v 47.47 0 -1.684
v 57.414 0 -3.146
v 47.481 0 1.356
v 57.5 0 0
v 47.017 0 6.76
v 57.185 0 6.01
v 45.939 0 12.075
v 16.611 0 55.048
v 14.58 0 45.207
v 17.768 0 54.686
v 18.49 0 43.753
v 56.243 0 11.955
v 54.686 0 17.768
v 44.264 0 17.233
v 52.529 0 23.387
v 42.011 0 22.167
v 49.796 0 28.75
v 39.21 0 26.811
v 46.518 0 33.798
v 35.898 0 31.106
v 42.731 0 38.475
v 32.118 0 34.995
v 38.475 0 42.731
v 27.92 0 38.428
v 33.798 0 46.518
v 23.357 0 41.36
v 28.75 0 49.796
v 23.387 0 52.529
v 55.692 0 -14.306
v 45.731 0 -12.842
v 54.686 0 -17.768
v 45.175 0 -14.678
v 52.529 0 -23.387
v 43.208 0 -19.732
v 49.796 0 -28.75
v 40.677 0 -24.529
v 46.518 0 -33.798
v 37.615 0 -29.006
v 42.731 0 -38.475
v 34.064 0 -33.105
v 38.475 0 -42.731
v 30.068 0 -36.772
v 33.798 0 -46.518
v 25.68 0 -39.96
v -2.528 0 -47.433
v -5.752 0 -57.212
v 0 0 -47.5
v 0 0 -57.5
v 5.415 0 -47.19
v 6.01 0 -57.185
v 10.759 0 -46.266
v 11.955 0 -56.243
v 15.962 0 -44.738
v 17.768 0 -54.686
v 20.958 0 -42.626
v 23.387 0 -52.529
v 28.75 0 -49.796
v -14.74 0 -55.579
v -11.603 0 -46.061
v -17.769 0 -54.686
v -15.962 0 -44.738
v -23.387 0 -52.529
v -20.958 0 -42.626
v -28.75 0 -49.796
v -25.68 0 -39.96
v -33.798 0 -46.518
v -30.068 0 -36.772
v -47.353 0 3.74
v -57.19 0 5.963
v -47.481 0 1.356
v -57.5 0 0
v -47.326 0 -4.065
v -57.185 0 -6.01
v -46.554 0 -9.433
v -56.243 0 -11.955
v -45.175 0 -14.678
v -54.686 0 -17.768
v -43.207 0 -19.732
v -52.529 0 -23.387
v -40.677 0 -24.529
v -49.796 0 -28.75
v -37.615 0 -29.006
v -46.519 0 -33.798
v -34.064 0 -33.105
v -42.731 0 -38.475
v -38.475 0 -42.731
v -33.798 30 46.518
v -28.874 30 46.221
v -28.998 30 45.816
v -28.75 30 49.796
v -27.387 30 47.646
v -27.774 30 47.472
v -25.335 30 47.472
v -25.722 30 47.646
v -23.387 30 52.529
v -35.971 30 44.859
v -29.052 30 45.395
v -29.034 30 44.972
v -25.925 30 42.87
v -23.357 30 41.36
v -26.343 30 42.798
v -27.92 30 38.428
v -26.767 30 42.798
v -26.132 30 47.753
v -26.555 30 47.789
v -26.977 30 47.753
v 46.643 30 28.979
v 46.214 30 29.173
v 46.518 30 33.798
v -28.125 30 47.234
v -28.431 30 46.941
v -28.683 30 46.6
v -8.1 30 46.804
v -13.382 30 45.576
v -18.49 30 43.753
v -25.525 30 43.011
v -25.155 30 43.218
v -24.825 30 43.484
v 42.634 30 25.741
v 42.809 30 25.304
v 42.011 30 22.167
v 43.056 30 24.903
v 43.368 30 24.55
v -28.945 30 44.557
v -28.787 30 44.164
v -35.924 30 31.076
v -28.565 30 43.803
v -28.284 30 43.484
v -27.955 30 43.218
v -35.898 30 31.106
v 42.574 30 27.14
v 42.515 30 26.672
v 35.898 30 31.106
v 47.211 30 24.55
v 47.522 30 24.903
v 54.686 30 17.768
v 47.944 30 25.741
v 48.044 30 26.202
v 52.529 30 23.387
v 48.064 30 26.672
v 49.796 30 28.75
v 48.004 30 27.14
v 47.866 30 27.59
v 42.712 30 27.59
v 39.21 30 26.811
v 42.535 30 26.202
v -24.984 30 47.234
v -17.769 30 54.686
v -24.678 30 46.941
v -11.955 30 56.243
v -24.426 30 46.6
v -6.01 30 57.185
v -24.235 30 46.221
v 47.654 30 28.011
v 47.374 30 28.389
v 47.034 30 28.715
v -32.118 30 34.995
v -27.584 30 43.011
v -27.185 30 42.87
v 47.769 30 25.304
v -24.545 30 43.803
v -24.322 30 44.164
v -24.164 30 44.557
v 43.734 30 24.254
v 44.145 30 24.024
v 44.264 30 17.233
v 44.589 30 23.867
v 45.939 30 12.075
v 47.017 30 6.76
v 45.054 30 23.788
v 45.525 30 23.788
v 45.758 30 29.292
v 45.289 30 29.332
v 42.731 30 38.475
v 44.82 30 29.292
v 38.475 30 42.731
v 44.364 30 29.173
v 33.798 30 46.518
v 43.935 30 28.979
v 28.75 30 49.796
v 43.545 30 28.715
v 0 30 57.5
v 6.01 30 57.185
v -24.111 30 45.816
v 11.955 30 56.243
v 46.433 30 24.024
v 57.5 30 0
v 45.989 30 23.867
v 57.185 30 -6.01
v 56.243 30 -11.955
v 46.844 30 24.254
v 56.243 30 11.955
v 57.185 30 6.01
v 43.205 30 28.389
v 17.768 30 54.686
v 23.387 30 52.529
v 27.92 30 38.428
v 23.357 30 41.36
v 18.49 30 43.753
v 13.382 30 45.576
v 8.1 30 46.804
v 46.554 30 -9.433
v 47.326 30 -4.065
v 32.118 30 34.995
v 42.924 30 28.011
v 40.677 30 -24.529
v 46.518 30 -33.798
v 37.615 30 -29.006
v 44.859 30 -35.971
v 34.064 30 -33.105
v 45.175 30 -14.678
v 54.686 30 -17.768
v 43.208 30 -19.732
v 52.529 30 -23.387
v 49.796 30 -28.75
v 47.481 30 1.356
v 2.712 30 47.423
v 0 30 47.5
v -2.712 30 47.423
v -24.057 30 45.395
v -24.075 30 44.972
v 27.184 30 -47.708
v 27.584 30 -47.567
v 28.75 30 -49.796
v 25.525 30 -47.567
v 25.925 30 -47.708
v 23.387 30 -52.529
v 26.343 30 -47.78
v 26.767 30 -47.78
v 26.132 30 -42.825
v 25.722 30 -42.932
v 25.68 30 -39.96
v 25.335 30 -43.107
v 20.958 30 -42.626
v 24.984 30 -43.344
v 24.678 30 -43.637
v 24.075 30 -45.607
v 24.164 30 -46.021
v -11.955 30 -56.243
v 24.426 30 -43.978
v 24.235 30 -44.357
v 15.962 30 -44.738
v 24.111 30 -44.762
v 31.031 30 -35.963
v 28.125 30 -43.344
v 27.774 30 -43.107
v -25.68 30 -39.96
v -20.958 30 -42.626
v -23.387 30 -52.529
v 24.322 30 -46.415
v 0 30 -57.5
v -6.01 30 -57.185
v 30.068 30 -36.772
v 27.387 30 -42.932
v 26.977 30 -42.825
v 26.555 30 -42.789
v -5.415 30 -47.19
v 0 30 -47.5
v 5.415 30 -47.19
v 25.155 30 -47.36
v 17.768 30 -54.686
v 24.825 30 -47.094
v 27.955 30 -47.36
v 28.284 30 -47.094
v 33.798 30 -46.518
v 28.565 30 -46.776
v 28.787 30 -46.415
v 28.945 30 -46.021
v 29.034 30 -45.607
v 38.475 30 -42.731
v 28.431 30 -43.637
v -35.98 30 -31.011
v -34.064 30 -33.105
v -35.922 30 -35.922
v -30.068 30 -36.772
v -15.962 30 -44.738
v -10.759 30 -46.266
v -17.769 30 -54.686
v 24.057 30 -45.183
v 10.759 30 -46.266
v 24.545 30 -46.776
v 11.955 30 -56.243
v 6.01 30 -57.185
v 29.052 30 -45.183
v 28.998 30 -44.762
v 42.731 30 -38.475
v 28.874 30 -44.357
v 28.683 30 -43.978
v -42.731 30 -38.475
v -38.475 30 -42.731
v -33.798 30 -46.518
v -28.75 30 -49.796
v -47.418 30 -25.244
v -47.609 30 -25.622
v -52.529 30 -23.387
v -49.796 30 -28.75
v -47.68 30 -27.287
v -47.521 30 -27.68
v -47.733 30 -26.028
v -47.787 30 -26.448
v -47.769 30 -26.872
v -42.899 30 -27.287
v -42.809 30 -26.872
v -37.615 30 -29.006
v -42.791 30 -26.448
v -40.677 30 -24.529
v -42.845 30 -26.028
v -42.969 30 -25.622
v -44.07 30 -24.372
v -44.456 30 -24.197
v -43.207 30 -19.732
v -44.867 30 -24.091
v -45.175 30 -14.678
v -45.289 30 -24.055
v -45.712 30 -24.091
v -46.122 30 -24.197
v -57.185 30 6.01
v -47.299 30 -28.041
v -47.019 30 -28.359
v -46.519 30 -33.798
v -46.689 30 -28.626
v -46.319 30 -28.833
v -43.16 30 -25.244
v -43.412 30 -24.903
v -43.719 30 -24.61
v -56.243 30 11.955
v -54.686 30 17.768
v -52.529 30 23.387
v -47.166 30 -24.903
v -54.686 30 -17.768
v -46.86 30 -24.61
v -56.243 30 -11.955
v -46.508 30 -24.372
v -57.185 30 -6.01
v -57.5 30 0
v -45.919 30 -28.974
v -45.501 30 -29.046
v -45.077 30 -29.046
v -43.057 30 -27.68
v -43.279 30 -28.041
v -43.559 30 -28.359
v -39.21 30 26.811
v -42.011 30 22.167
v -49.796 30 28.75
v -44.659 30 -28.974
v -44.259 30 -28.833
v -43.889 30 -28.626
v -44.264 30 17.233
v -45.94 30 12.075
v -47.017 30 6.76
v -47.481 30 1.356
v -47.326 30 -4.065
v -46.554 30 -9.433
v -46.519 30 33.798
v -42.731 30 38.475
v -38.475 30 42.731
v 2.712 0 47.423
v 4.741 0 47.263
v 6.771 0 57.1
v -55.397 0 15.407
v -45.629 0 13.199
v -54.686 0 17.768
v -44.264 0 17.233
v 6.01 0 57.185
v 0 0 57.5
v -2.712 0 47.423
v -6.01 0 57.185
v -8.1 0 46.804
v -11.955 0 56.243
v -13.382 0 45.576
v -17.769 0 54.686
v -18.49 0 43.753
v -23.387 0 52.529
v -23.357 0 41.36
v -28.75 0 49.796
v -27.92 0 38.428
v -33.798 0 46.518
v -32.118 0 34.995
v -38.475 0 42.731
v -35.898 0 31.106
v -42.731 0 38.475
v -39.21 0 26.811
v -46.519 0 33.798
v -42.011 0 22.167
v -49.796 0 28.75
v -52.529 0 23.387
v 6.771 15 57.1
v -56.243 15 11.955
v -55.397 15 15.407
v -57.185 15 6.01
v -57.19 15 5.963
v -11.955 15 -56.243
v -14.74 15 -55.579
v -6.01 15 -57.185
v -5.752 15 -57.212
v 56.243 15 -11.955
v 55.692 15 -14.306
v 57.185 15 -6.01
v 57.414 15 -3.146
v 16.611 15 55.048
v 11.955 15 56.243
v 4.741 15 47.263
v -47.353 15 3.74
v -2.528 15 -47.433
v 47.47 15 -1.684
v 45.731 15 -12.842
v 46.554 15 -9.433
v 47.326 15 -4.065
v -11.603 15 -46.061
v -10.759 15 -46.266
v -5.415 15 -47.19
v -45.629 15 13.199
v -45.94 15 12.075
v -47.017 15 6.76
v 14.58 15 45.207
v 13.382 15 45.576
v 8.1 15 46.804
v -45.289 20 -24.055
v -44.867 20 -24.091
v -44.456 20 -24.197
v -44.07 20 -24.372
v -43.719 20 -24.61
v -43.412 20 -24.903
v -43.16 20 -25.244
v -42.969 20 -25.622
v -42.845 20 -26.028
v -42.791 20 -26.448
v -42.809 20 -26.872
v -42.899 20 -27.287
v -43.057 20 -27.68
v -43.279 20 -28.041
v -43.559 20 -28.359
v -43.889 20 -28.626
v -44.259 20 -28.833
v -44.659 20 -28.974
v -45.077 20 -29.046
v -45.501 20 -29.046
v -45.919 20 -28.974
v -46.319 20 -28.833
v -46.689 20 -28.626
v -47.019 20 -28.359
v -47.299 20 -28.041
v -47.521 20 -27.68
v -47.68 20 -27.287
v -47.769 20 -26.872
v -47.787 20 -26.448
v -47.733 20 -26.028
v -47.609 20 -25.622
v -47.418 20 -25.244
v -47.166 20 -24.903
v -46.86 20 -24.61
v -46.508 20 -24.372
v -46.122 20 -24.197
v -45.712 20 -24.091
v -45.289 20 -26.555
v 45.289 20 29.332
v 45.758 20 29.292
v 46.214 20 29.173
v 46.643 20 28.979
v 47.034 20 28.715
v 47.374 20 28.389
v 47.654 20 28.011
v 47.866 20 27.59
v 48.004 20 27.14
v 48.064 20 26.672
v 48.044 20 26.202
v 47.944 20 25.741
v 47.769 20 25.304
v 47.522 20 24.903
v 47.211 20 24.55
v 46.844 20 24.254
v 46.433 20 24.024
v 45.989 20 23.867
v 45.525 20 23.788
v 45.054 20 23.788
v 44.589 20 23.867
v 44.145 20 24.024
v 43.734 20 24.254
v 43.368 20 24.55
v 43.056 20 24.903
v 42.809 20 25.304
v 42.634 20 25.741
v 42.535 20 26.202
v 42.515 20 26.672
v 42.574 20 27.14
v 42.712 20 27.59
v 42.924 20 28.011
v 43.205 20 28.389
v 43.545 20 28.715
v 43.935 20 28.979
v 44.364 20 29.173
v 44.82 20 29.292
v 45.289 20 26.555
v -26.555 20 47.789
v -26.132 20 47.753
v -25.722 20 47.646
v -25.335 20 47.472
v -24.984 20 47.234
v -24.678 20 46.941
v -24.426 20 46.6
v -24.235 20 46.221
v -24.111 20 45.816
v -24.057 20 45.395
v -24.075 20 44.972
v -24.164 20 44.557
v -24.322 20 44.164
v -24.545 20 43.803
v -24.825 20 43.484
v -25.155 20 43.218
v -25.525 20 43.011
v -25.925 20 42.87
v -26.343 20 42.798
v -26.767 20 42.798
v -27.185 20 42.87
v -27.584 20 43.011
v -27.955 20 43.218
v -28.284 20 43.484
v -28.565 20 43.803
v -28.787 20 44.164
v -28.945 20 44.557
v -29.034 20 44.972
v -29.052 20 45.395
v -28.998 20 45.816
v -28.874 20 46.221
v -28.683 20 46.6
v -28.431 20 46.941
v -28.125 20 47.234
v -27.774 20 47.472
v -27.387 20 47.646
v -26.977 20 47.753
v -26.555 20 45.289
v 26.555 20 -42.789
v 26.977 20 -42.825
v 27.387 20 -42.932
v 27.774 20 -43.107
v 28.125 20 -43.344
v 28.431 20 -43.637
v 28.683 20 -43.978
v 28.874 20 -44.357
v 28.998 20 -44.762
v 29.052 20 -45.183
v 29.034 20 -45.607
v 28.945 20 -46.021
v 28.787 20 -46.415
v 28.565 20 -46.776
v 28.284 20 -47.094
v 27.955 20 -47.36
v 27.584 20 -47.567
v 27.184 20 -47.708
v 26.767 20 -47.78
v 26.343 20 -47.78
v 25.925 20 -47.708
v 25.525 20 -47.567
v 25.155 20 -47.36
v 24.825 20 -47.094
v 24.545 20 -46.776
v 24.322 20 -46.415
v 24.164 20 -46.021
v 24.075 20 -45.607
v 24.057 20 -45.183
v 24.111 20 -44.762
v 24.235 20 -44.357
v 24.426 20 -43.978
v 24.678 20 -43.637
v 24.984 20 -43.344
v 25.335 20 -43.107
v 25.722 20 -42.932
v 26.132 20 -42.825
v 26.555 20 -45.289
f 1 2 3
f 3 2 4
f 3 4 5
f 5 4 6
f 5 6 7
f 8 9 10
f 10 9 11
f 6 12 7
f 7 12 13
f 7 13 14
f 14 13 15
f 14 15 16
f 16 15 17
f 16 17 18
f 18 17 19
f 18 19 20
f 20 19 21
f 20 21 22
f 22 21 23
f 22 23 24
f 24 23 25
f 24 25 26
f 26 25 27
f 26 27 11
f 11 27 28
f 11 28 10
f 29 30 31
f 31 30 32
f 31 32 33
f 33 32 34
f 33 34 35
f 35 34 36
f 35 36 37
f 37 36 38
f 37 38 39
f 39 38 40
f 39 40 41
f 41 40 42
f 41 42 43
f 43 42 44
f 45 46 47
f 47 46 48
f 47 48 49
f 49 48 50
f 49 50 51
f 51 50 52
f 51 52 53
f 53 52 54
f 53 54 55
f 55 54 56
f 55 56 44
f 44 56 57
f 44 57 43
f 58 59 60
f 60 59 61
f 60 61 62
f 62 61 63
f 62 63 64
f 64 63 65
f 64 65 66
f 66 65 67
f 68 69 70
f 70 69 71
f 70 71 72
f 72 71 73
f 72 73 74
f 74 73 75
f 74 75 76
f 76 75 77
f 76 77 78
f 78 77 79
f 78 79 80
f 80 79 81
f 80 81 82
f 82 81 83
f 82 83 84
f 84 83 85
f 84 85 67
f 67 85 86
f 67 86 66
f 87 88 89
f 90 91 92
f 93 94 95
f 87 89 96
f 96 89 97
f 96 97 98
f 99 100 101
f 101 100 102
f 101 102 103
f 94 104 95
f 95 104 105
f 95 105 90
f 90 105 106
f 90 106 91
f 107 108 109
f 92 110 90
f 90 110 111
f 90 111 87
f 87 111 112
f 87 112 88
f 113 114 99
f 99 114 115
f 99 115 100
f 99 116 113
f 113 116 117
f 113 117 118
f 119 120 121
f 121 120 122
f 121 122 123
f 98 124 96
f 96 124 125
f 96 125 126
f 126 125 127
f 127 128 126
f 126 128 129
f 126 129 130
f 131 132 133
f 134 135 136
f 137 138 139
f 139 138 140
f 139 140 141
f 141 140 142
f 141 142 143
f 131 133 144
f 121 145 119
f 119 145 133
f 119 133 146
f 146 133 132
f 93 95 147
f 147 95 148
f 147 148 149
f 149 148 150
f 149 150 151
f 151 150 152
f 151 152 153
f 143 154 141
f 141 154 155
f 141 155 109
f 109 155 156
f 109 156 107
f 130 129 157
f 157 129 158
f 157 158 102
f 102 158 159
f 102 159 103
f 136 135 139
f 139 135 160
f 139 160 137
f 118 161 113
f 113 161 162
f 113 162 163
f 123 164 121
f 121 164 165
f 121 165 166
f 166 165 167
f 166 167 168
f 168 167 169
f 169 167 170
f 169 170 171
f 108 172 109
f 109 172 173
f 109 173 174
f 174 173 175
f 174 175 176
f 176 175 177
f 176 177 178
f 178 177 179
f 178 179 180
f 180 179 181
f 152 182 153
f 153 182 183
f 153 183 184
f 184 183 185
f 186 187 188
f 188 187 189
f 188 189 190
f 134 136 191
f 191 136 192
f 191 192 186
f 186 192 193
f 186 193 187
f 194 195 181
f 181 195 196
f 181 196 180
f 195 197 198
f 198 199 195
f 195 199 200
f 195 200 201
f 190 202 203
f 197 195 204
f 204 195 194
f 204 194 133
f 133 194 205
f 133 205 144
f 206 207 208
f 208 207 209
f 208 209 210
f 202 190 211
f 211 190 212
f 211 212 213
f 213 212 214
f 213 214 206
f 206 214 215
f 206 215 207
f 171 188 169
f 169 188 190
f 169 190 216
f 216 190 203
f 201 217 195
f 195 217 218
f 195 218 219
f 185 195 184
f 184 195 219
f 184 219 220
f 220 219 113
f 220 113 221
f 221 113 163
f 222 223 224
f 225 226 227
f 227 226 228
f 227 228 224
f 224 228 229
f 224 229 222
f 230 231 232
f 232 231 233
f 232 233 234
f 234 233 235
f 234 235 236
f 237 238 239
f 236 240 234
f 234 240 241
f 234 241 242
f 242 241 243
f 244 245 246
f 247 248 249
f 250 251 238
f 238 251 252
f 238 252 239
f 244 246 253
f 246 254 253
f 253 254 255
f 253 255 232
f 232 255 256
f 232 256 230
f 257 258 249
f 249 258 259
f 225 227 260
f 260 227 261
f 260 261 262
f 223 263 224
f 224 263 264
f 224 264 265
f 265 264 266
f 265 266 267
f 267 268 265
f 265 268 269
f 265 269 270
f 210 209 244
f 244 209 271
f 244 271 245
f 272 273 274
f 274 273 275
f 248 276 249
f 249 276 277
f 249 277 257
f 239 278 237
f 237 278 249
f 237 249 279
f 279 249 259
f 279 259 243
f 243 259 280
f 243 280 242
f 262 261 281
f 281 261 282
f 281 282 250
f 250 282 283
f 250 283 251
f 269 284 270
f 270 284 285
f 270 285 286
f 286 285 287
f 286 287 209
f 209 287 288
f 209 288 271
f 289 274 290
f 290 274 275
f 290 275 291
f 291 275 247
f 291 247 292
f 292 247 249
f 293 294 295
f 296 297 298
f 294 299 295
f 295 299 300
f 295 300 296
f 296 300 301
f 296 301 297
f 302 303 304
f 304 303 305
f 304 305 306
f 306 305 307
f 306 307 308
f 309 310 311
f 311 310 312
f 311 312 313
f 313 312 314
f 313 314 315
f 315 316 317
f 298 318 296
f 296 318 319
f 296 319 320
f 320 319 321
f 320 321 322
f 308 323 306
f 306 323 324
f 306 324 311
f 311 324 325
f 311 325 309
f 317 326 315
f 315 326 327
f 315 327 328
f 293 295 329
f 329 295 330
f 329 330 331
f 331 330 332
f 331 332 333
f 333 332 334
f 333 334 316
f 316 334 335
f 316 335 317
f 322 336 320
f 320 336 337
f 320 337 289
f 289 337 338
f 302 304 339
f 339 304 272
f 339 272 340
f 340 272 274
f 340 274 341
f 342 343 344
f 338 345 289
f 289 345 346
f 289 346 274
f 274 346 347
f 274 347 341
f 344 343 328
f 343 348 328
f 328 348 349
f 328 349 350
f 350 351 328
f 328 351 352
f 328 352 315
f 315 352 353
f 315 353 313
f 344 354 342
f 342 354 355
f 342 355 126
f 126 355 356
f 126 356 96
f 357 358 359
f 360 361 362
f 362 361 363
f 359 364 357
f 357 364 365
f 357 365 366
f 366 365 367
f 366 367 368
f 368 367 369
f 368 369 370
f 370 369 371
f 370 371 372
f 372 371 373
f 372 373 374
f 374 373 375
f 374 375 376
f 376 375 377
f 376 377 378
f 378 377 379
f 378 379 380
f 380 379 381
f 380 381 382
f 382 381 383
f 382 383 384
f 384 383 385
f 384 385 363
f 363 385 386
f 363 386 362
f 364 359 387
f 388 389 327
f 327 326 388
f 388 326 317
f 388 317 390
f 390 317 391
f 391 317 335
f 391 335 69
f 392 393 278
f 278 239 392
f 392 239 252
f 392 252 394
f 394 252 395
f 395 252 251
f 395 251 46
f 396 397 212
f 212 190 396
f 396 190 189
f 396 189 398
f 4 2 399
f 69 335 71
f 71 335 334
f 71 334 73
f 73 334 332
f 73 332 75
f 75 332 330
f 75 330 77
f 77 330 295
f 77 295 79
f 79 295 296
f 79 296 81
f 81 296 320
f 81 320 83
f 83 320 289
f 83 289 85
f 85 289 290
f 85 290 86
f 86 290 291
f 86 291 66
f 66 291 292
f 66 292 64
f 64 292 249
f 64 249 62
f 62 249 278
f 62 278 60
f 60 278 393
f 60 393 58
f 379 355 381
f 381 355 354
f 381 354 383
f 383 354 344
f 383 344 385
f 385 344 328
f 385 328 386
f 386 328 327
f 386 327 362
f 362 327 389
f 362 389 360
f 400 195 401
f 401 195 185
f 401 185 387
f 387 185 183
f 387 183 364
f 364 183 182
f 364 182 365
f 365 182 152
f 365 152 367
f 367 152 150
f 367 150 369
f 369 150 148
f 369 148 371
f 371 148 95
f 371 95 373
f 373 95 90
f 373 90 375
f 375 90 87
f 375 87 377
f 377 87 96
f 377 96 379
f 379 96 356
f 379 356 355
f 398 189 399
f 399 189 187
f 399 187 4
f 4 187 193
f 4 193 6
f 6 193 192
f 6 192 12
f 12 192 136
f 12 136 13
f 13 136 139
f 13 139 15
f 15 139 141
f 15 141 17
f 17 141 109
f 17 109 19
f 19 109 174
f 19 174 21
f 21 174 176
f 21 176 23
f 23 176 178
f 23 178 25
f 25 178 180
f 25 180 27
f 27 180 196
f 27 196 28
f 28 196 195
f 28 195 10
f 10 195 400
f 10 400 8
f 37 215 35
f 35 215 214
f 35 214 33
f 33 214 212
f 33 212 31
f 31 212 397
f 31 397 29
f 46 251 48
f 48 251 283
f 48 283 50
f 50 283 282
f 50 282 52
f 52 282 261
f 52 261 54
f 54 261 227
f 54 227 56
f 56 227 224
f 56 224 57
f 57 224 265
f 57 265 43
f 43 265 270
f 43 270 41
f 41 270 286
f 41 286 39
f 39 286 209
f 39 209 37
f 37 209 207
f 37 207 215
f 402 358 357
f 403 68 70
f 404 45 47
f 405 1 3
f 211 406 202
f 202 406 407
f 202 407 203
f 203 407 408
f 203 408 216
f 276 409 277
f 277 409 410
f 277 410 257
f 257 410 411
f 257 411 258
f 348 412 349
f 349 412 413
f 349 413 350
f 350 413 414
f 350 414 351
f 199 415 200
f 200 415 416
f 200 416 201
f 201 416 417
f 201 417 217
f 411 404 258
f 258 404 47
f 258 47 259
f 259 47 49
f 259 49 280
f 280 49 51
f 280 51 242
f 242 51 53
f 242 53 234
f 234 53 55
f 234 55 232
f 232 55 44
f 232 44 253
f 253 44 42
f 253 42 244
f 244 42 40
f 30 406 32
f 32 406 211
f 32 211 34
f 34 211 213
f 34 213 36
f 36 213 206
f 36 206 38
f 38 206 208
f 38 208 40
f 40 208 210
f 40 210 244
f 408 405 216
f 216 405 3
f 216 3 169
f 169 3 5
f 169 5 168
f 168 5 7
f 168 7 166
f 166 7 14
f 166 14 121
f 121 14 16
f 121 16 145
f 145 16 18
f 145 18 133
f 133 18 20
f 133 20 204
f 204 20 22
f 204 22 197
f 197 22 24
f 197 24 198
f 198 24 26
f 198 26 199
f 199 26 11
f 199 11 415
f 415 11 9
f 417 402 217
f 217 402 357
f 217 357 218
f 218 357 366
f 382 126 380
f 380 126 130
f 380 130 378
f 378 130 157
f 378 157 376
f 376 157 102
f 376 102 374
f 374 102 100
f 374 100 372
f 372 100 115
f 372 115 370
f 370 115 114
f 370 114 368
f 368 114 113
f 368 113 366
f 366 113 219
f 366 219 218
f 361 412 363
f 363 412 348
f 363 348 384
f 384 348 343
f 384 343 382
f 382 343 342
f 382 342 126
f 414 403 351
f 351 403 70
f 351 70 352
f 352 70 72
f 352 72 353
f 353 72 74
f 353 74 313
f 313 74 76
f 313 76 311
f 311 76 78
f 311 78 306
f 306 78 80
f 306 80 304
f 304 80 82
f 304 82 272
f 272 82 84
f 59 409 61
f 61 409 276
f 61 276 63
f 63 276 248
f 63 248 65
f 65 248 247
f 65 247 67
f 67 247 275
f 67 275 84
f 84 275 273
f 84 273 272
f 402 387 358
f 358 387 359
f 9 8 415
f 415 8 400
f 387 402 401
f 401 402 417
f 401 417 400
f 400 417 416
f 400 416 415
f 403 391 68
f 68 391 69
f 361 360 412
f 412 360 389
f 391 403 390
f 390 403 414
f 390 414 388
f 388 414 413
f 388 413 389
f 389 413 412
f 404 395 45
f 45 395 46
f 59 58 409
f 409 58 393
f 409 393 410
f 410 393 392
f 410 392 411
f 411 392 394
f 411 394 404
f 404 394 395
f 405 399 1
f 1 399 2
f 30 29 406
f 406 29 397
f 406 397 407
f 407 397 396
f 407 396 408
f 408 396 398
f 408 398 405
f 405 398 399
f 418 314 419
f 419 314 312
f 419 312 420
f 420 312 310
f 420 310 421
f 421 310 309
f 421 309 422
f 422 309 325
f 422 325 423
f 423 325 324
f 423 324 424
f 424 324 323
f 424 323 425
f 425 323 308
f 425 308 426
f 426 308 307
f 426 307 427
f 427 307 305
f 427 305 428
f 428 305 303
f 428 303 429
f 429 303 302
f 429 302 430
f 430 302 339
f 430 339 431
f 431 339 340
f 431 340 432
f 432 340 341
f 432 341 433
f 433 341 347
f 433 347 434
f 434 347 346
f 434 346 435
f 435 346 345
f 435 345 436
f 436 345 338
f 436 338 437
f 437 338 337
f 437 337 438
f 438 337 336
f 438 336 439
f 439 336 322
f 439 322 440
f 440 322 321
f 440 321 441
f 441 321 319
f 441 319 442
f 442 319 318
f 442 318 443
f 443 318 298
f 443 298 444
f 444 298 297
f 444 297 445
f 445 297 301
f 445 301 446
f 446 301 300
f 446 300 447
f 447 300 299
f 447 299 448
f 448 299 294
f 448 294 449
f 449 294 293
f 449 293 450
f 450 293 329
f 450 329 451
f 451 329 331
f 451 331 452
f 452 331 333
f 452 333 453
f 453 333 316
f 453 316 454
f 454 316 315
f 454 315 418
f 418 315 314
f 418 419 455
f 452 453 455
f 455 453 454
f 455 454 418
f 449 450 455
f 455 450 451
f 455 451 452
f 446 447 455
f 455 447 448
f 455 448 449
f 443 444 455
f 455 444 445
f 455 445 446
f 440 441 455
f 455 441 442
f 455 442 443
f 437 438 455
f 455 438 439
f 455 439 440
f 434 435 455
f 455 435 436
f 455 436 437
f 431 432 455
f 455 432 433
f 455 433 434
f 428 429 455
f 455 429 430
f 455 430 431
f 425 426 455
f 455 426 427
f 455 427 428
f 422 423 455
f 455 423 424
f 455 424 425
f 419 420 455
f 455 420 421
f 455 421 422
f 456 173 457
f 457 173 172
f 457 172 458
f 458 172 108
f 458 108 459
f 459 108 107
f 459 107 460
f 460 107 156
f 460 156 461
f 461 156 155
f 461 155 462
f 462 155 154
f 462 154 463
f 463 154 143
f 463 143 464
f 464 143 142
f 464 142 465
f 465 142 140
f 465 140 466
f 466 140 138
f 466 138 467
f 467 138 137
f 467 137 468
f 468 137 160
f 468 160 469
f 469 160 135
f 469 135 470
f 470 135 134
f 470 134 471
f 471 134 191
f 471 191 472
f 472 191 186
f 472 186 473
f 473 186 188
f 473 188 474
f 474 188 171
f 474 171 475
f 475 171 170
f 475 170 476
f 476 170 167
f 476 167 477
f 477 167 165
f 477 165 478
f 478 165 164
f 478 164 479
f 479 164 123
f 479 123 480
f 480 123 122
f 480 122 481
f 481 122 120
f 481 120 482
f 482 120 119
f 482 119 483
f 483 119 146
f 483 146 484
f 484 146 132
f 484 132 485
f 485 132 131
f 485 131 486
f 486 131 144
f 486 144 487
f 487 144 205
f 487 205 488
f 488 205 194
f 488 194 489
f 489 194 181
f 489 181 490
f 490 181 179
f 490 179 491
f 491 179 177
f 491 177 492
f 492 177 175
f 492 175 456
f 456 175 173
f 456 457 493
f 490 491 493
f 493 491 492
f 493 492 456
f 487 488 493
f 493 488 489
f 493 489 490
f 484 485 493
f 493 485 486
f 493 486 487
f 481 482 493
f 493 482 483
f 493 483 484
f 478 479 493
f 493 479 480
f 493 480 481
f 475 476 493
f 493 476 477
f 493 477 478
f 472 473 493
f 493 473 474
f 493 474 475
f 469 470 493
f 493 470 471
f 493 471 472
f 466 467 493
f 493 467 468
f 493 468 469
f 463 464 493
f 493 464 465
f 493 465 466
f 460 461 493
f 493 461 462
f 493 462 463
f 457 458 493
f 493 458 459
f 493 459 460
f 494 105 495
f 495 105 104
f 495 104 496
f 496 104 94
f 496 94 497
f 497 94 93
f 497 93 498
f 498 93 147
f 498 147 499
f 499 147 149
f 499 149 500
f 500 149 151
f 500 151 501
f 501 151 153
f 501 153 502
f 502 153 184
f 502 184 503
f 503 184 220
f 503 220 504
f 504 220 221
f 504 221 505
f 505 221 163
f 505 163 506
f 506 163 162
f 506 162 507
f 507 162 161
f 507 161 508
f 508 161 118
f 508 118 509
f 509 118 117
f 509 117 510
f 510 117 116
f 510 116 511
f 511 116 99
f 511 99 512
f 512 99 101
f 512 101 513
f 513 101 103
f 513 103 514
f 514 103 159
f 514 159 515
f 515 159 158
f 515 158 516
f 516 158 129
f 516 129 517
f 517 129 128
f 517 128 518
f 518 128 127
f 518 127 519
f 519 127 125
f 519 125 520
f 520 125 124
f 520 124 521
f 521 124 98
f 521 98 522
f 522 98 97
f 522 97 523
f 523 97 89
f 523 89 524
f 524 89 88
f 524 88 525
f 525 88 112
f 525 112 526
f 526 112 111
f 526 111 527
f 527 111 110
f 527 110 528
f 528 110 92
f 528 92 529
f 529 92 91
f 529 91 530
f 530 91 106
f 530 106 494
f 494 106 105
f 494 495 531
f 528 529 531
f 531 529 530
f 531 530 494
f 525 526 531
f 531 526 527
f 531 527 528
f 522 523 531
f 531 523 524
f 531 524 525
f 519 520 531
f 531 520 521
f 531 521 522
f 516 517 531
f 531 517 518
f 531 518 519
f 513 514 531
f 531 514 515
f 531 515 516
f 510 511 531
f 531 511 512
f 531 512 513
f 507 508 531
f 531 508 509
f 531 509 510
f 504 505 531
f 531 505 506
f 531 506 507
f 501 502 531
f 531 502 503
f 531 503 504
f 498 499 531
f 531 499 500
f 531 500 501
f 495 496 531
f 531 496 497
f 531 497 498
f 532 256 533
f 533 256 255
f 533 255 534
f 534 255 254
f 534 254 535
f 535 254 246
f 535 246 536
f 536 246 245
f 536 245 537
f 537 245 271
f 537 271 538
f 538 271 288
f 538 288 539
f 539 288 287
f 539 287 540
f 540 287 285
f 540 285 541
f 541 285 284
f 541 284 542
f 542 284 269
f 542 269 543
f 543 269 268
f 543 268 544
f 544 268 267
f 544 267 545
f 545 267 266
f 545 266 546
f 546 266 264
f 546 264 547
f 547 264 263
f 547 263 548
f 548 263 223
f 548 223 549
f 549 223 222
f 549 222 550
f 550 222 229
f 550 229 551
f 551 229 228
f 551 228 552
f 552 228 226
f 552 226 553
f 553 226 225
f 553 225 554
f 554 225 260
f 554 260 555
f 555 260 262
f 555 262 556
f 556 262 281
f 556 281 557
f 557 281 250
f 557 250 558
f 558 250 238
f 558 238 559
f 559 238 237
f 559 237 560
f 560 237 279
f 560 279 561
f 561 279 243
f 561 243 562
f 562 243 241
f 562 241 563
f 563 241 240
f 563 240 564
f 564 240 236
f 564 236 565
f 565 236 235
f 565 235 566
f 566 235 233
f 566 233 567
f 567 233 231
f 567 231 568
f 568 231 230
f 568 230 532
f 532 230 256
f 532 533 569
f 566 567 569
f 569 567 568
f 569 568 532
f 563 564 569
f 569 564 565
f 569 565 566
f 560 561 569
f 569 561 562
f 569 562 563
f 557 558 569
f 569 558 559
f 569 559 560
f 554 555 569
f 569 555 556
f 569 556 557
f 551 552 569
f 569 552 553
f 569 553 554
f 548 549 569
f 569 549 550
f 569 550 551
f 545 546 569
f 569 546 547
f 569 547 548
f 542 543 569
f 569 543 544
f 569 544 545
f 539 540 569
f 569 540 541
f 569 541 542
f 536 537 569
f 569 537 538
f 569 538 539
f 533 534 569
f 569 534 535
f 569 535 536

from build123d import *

# Parameters (mm, degrees)
ESQUISSE1_R             = 57.5
ESQUISSE1_R_2           = 47.5
BOSS_EXTRU_3_DEPTH      = 30
ENL_V_MAT_EXTRU_4_DEPTH = 15
ENL_V_MAT_EXTRU_5_DEPTH = 15
ENL_V_MAT_EXTRU_6_DEPTH = 15
ENL_V_MAT_EXTRU_7_DEPTH = 15
ESQUISSE10_R            = 2.776949087
ESQUISSE10_R_2          = 2.5
ENL_V_MAT_EXTRU_8_DEPTH = 10


with BuildPart() as part:
    # Esquisse1 → Boss.-Extru.3 (new body)
    with BuildSketch(Plane(origin=(0, 0, 0), x_dir=(1, 0, 0), z_dir=(0, 1, 0))):
        with Locations(Location((0, 0, 0), (0, 0, 270))):
            Circle(ESQUISSE1_R)
        with Locations(Location((0, 0, 0), (0, 0, 270))):
            Circle(ESQUISSE1_R_2, mode=Mode.SUBTRACT)
    extrude(amount=BOSS_EXTRU_3_DEPTH)

    # Esquisse4 → Enlèv. mat.-Extru.4 (cut)
    with BuildSketch(Plane(origin=(0, 0, 0), x_dir=(-1, 0, 0), z_dir=(0, -1, 0))):
        Polygon((-4.740706844, -47.262836337), (-14.579980258, -45.207014673), (-17.999133934, -61.771502914), (-8.15986052, -63.827324578), align=None)
    extrude(amount=-ENL_V_MAT_EXTRU_4_DEPTH, mode=Mode.SUBTRACT)

    # Esquisse6 → Enlèv. mat.-Extru.5 (cut)
    with BuildSketch(Plane(origin=(0, 0, 0), x_dir=(-1, 0, 0), z_dir=(0, -1, 0))):
        Polygon((37.97805027, -11.470285743), (58.779258548, -16.171123772), (59.719426153, -6.534405813), (38.918217876, -1.833567784), align=None)
    extrude(amount=-ENL_V_MAT_EXTRU_5_DEPTH, mode=Mode.SUBTRACT)

    # Esquisse7 → Enlèv. mat.-Extru.6 (cut)
    with BuildSketch(Plane(origin=(0, 0, 0), x_dir=(-1, 0, 0), z_dir=(0, -1, 0))):
        Polygon((10.091528645, 41.476841185), (15.939537835, 59.219106356), (6.91972705, 60.755447754), (1.071717859, 43.013182582), align=None)
    extrude(amount=-ENL_V_MAT_EXTRU_6_DEPTH, mode=Mode.SUBTRACT)

    # Esquisse8 → Enlèv. mat.-Extru.7 (cut)
    with BuildSketch(Plane(origin=(0, 0, 0), x_dir=(-1, 0, 0), z_dir=(0, -1, 0))):
        Polygon((-42.754189526, 0.991012316), (-70.16329298, 5.019646945), (-68.868374707, 16.242271981), (-41.459271253, 12.213637353), align=None)
    extrude(amount=-ENL_V_MAT_EXTRU_7_DEPTH, mode=Mode.SUBTRACT)

    # Esquisse10 → Enlèv. mat.-Extru.8 (cut)
    with BuildSketch(Plane(origin=(0, 30, 0), x_dir=(1, 0, 0), z_dir=(0, 1, 0))):
        with Locations(Location((45.289109306, -26.55459618, 0), (0, 0, 270))):
            Circle(ESQUISSE10_R)
        with Locations(Location((26.55459618, 45.289109306, 0), (0, 0, 270))):
            Circle(ESQUISSE10_R_2)
        with Locations(Location((-26.55459618, -45.289109306, 0), (0, 0, 270))):
            Circle(ESQUISSE10_R_2)
        with Locations(Location((-45.289109306, 26.55459618, 0), (0, 0, 270))):
            Circle(ESQUISSE10_R_2)
    extrude(amount=-ENL_V_MAT_EXTRU_8_DEPTH, mode=Mode.SUBTRACT)


solid = part.part
